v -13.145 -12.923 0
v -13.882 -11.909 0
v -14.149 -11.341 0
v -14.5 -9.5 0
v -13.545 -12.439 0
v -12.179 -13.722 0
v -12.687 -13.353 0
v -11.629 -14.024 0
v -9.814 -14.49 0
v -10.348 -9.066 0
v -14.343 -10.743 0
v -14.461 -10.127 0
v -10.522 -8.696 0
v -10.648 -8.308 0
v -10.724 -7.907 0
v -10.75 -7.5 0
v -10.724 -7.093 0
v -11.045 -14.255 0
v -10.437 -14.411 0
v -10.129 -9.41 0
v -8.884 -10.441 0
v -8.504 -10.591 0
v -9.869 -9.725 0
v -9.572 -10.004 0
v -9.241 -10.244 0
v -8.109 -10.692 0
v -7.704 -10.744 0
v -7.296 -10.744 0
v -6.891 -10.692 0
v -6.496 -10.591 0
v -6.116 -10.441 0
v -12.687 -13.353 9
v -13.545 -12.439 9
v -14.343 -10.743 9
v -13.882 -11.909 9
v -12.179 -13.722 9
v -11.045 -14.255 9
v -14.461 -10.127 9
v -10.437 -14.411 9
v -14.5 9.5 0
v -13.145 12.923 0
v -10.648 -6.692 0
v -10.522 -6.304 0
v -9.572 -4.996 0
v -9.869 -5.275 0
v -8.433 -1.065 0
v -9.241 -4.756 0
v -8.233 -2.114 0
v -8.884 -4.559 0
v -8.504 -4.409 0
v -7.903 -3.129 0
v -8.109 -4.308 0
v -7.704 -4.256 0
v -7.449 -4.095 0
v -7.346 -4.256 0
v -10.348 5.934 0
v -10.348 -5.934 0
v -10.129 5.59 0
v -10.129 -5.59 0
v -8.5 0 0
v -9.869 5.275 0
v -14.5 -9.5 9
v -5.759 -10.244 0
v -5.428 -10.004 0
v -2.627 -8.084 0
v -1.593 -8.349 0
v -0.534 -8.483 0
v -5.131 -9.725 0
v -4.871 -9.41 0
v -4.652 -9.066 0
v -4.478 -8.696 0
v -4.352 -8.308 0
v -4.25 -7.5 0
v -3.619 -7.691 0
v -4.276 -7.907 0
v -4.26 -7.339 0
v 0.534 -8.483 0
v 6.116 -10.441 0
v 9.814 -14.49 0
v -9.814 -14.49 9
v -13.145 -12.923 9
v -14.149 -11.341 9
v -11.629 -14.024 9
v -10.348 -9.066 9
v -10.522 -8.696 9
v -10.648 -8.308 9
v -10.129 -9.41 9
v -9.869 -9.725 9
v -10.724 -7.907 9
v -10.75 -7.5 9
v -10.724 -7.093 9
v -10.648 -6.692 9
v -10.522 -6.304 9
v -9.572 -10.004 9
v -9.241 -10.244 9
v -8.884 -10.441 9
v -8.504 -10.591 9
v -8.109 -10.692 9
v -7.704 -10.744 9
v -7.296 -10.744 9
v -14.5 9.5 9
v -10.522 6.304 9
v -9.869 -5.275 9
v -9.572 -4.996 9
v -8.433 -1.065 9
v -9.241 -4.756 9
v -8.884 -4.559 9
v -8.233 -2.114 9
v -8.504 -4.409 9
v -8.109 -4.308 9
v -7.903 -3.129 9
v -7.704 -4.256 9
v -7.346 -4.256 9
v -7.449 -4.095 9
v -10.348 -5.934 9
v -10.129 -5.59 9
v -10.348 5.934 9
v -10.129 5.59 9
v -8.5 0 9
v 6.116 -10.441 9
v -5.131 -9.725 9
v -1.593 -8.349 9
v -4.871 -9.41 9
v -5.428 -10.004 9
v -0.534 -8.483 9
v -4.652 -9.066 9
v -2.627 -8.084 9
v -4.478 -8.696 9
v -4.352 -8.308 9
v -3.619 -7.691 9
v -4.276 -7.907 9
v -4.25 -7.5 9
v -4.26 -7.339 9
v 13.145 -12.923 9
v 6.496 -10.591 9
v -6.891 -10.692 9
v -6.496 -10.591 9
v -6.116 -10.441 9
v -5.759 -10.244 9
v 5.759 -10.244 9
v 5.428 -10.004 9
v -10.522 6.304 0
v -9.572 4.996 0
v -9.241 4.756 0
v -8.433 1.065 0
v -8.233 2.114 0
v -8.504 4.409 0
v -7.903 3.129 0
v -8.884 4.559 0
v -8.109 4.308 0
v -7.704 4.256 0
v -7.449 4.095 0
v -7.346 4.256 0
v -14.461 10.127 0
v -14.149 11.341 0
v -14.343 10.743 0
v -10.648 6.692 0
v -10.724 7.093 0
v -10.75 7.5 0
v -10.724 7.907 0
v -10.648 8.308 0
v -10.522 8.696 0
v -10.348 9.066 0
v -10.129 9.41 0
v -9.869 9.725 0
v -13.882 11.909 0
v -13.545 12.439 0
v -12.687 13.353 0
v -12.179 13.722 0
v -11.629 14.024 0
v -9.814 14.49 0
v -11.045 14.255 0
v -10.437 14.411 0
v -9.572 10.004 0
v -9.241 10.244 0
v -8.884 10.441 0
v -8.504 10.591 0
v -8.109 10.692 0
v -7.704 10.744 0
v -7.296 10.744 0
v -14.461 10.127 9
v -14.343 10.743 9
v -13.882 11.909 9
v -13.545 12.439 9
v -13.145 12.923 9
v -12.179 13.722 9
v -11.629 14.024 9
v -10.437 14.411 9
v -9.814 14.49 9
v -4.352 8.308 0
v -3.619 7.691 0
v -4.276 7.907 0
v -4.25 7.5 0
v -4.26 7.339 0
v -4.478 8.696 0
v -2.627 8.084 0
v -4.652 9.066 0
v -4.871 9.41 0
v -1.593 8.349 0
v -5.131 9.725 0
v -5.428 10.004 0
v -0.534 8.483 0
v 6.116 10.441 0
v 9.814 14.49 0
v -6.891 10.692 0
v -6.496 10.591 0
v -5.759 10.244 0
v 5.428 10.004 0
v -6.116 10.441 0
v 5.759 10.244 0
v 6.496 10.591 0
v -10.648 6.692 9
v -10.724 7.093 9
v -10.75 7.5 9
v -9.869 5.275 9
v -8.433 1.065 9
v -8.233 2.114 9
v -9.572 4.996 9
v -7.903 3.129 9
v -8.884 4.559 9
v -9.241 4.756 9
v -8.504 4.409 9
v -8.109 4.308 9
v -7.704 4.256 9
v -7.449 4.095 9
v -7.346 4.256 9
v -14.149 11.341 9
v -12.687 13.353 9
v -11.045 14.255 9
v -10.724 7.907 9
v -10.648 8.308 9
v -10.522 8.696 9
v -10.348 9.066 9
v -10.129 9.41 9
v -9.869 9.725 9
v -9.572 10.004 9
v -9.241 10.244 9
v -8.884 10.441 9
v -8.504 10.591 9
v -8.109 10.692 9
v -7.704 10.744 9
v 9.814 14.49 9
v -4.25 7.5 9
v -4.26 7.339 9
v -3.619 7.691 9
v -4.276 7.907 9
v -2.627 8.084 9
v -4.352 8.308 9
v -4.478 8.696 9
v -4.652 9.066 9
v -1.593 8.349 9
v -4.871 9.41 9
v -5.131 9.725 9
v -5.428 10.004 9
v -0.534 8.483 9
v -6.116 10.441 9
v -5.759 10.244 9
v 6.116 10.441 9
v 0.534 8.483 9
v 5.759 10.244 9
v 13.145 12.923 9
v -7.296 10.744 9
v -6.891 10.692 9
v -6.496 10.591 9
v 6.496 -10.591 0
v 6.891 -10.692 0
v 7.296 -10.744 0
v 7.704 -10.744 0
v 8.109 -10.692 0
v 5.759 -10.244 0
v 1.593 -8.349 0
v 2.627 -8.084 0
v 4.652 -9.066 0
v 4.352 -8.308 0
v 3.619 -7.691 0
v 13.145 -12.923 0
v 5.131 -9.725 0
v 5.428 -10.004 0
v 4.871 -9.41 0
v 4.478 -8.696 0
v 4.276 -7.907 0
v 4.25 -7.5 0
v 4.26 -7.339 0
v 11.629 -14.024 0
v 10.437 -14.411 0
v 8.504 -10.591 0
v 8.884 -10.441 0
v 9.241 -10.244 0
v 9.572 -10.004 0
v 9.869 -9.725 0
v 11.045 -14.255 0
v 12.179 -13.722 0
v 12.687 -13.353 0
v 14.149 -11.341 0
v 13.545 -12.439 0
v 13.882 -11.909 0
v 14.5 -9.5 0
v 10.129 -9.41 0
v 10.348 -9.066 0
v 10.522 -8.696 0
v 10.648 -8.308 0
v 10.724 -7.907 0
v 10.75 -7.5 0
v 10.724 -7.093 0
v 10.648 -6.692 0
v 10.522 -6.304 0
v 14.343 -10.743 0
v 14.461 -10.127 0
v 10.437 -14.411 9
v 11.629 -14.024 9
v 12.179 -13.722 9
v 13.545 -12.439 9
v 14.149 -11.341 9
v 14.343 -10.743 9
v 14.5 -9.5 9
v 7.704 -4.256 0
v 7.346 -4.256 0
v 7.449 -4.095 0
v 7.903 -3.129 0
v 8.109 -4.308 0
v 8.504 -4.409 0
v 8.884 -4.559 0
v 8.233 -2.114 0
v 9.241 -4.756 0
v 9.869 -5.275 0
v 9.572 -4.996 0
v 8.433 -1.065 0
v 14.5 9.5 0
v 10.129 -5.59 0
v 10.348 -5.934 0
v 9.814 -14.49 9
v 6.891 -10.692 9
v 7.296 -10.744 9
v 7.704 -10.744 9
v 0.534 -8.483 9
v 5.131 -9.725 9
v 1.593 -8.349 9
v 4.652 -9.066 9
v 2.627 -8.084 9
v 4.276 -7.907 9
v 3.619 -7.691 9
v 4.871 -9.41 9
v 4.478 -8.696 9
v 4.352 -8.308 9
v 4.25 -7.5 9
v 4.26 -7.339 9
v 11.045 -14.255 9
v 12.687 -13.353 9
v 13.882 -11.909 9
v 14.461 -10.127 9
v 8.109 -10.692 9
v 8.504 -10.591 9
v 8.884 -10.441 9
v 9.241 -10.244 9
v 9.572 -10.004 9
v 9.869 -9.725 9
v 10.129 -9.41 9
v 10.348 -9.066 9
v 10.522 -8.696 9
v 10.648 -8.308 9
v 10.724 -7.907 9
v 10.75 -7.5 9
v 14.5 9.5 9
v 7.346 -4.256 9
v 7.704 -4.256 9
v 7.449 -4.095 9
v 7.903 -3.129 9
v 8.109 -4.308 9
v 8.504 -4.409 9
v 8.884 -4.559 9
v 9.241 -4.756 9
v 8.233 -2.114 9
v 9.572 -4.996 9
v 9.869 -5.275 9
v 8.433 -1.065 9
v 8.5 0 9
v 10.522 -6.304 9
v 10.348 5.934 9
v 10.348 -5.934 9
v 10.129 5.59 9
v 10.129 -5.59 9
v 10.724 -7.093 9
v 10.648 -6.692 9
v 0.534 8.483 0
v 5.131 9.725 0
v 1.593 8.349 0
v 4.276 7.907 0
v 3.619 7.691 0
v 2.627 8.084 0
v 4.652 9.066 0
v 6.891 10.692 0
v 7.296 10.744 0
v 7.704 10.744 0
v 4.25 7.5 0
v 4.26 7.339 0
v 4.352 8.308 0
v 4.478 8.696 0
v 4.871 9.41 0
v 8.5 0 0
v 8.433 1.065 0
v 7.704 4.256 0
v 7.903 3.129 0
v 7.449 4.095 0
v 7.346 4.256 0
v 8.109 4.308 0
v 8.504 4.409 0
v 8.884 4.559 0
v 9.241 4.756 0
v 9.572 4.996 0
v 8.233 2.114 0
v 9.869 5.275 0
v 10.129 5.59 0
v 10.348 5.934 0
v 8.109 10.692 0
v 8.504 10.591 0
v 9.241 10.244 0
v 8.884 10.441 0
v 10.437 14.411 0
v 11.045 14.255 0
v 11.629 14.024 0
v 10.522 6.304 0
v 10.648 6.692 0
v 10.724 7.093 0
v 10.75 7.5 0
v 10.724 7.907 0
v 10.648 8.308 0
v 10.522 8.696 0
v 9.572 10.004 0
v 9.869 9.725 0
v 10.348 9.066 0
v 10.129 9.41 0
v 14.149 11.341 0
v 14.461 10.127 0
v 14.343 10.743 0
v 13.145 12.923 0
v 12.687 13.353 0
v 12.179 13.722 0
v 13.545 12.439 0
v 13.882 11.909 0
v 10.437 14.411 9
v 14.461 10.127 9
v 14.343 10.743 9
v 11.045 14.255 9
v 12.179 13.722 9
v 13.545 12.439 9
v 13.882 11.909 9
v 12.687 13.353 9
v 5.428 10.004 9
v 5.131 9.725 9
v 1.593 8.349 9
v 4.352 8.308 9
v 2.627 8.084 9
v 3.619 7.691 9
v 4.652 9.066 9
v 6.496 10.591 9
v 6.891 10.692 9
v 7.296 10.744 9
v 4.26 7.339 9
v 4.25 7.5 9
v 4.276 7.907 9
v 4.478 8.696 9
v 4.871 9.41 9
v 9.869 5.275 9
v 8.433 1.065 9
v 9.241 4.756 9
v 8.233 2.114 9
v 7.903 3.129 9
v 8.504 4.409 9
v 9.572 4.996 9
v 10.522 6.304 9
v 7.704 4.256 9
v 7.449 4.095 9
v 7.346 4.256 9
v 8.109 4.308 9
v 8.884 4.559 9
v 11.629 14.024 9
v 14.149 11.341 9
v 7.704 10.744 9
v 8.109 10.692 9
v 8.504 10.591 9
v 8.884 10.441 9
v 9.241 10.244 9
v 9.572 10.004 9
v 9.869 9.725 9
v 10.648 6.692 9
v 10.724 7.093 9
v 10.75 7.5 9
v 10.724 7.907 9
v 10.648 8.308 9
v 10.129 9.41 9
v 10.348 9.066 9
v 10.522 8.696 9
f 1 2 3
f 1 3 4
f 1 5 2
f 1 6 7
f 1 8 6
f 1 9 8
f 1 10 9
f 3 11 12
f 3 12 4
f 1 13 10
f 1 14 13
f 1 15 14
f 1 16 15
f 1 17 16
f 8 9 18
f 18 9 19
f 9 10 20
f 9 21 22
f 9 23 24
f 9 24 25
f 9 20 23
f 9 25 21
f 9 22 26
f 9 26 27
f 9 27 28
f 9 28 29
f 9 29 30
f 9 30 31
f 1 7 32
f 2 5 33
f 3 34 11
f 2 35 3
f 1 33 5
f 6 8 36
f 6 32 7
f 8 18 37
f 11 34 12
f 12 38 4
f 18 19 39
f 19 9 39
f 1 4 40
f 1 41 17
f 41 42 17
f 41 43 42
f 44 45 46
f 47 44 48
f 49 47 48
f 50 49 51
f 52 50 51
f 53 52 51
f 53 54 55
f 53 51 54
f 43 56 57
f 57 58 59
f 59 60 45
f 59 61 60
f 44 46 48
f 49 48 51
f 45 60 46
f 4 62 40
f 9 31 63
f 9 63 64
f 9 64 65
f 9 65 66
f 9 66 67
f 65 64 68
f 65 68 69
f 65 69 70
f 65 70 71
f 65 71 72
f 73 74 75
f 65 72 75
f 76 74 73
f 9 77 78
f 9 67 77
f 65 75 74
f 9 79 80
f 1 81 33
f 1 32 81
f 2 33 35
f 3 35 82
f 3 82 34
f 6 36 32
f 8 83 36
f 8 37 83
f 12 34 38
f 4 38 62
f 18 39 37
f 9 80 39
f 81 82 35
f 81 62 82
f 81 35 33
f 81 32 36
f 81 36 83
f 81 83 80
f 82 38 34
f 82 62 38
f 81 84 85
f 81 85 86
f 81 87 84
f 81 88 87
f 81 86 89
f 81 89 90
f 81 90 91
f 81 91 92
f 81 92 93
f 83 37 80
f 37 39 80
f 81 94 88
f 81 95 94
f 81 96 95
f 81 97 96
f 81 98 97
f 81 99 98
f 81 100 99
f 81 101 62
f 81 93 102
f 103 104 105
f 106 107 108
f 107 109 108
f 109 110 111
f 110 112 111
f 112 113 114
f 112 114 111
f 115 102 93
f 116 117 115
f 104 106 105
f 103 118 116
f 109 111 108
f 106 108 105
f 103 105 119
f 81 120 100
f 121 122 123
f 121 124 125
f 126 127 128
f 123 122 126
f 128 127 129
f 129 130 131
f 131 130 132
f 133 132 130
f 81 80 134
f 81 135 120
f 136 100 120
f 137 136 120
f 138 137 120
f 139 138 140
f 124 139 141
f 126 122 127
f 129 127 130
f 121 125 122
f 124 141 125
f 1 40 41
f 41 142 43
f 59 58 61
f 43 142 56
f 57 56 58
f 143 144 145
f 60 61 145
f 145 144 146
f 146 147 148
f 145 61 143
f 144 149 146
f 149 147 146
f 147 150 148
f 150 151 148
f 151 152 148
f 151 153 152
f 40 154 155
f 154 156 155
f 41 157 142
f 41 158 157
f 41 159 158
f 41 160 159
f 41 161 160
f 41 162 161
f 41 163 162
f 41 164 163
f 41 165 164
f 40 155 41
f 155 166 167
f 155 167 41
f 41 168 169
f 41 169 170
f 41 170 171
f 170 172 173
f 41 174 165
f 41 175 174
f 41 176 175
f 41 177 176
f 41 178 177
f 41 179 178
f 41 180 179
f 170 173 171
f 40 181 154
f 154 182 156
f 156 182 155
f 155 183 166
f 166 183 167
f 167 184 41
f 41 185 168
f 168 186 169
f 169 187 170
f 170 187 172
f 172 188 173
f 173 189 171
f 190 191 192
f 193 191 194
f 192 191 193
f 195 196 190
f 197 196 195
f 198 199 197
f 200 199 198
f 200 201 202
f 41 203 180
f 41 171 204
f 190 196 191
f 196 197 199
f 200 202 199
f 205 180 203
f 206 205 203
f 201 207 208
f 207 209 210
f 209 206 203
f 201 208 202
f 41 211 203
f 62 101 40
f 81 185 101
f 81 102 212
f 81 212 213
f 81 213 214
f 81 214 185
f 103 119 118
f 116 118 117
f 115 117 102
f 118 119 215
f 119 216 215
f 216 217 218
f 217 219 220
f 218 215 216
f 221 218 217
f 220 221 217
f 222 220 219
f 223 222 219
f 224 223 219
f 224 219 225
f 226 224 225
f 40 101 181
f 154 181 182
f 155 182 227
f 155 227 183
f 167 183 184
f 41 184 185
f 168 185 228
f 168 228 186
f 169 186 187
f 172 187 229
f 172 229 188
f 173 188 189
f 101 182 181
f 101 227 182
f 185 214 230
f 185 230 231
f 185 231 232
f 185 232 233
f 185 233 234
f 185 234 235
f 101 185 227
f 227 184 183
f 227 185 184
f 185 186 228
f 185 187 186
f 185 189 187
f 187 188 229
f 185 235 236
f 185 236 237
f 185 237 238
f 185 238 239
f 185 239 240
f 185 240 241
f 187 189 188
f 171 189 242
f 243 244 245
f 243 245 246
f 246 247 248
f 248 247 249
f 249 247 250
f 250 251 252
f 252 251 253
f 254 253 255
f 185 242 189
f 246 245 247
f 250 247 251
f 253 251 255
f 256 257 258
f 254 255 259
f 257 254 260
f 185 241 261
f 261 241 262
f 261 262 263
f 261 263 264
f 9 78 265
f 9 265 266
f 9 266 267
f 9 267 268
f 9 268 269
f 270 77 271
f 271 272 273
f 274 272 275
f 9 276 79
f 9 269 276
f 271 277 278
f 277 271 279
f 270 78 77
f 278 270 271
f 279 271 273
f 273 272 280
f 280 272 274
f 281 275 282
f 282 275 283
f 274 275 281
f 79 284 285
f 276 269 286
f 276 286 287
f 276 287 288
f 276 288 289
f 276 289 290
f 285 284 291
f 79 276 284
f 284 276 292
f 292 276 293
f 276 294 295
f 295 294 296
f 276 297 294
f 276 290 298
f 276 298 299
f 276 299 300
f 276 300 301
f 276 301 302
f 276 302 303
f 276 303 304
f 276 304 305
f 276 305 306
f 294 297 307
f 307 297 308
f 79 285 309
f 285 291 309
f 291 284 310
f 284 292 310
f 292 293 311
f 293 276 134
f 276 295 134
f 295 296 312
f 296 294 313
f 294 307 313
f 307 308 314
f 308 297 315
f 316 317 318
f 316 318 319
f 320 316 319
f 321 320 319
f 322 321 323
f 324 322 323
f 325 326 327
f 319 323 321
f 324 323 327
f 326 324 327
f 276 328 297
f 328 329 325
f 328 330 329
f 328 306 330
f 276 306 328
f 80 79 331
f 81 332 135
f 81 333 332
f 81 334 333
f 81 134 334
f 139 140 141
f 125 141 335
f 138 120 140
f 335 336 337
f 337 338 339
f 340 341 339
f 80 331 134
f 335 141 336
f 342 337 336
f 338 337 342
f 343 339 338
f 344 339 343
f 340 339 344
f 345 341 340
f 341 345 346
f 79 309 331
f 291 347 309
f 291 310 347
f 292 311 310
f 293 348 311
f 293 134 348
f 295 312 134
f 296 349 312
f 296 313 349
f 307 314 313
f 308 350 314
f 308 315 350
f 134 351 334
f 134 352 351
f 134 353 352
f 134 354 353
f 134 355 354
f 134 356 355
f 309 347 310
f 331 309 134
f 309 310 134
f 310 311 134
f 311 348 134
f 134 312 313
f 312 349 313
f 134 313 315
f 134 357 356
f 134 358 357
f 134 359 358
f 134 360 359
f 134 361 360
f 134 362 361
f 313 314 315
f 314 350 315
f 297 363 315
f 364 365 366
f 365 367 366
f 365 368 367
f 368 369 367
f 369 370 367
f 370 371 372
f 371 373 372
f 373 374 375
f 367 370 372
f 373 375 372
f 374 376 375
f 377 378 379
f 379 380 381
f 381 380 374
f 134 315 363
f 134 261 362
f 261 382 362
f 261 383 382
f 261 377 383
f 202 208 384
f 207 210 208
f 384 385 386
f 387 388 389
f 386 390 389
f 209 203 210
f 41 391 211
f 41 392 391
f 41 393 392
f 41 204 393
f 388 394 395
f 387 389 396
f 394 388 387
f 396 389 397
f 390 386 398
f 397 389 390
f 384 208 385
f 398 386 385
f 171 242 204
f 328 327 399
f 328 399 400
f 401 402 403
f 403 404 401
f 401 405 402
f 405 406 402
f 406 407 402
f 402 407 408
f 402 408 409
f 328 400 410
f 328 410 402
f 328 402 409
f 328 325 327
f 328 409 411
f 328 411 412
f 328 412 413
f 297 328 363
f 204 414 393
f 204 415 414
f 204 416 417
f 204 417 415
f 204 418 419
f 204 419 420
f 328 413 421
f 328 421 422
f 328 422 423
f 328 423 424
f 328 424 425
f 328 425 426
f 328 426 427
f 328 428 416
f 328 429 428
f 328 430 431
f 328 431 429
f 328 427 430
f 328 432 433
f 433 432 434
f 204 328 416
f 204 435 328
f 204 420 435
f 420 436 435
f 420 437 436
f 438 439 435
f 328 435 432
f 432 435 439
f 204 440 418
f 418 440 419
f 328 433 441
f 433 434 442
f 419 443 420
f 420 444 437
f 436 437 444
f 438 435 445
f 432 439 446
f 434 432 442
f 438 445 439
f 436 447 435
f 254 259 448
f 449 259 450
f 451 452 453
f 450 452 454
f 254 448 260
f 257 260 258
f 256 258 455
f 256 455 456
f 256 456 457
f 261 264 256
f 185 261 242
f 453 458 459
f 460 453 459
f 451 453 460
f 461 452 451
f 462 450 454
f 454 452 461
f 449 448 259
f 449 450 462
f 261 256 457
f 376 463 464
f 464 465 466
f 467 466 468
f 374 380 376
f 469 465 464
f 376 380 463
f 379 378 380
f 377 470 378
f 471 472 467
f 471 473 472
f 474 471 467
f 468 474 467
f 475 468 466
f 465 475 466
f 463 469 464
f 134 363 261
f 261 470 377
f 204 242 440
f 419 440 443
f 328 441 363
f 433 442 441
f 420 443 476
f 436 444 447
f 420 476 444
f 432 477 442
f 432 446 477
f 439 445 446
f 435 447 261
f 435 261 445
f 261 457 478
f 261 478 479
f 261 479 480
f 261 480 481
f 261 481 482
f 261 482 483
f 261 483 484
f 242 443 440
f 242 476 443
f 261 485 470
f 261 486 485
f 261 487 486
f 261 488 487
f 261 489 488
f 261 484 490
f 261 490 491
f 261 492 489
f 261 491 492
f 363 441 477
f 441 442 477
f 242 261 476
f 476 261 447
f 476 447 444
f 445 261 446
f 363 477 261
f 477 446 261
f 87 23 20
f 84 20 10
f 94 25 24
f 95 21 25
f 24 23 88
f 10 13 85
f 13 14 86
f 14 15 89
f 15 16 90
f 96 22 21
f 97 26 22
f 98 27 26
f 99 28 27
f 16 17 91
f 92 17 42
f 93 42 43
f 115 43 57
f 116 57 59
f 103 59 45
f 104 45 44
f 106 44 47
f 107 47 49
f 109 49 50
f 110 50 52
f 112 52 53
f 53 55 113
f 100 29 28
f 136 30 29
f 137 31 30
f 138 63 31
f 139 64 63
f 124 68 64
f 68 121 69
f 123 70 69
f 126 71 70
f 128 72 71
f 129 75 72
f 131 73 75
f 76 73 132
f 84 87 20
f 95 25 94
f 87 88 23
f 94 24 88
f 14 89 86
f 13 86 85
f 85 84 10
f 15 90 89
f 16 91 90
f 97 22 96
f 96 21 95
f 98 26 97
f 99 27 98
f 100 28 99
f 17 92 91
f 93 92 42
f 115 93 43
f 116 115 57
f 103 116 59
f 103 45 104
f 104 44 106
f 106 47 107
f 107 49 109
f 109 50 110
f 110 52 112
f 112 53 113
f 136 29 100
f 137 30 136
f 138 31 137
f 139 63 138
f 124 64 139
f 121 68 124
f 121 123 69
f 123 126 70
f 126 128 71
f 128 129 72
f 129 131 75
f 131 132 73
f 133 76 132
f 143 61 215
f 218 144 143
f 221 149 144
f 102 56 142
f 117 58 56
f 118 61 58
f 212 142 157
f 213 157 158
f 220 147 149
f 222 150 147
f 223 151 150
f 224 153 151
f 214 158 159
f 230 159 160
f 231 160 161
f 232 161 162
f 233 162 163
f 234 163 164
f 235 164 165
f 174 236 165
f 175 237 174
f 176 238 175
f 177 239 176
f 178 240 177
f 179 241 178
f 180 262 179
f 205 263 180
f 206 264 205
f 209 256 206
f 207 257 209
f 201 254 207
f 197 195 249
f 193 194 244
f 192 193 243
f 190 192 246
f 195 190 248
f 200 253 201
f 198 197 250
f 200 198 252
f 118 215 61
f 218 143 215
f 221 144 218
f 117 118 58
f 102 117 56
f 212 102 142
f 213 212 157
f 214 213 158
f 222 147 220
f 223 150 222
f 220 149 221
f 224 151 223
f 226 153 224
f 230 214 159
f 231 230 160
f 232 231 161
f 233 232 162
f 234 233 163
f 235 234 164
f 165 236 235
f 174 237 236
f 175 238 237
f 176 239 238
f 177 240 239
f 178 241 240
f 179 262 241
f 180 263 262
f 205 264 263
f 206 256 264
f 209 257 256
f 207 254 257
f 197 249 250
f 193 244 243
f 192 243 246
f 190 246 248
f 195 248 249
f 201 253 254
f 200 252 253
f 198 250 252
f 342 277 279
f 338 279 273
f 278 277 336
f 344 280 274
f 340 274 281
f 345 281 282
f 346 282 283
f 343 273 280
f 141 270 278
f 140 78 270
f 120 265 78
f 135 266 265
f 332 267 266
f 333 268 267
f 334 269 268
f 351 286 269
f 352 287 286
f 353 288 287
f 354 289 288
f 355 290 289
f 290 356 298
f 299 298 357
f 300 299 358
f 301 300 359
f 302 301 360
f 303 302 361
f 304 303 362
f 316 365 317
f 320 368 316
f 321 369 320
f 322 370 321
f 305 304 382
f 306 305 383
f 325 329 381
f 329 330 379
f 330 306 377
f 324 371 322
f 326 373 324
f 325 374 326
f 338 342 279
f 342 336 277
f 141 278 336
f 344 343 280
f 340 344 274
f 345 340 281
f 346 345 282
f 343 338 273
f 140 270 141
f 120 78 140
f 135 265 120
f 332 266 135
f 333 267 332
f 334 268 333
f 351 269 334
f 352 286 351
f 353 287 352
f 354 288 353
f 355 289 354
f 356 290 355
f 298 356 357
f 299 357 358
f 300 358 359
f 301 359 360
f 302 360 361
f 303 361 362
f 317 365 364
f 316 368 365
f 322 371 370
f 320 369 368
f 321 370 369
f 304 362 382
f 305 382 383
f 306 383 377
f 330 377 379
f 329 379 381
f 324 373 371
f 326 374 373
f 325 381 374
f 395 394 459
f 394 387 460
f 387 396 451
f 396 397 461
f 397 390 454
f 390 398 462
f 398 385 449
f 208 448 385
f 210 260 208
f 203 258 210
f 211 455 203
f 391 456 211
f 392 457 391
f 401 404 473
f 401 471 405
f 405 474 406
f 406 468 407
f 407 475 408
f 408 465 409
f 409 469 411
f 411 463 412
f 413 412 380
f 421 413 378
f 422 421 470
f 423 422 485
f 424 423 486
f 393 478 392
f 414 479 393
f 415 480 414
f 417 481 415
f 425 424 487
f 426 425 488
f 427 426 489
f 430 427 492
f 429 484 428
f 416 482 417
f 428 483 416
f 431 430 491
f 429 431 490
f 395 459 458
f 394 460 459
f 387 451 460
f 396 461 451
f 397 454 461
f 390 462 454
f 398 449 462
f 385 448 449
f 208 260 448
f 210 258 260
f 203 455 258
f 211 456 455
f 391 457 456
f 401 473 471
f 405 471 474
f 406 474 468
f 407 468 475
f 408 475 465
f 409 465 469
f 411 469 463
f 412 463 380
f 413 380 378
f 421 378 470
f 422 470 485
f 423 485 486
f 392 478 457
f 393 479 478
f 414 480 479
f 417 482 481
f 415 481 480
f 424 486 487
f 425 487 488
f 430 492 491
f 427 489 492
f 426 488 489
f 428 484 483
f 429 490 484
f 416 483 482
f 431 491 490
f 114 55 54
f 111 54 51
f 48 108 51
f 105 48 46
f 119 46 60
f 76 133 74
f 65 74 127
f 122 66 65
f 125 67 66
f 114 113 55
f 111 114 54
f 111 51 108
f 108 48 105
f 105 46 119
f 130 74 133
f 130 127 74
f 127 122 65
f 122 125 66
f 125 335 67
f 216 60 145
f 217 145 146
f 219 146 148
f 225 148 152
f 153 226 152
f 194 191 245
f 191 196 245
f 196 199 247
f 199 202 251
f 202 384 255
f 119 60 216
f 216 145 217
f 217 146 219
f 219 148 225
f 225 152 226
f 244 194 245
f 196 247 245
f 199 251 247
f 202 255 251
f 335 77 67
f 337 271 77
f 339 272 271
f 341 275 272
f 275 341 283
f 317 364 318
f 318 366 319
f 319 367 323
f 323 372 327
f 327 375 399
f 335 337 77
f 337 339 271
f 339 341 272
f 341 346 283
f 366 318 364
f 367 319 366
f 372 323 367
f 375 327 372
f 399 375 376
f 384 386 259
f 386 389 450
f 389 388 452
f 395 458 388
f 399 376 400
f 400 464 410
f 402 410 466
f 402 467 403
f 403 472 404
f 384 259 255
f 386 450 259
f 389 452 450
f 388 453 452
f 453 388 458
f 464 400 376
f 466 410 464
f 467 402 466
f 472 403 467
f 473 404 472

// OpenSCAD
$fn = 50;

difference() {
	union() {
		hull() {
			translate(v = [-9.5, 9.5, 0]) {
				cylinder(h = 9, r = 5);
			}
			translate(v = [9.5, 9.5, 0]) {
				cylinder(h = 9, r = 5);
			}
			translate(v = [-9.5, -9.5, 0]) {
				cylinder(h = 9, r = 5);
			}
			translate(v = [9.5, -9.5, 0]) {
				cylinder(h = 9, r = 5);
			}
		}
	}
	union() {
		translate(v = [-7.5, -7.5, -100.0]) {
			cylinder(h = 200, r = 3.25);
		}
		translate(v = [-7.5, 7.5, -100.0]) {
			cylinder(h = 200, r = 3.25);
		}
		translate(v = [7.5, -7.5, -100.0]) {
			cylinder(h = 200, r = 3.25);
		}
		translate(v = [7.5, 7.5, -100.0]) {
			cylinder(h = 200, r = 3.25);
		}
		translate(v = [-7.5, -7.5, -100.0]) {
			cylinder(h = 200, r = 1.8);
		}
		translate(v = [-7.5, 7.5, -100.0]) {
			cylinder(h = 200, r = 1.8);
		}
		translate(v = [7.5, -7.5, -100.0]) {
			cylinder(h = 200, r = 1.8);
		}
		translate(v = [7.5, 7.5, -100.0]) {
			cylinder(h = 200, r = 1.8);
		}
		cylinder(h = 9, r = 8.5);
	}
}
